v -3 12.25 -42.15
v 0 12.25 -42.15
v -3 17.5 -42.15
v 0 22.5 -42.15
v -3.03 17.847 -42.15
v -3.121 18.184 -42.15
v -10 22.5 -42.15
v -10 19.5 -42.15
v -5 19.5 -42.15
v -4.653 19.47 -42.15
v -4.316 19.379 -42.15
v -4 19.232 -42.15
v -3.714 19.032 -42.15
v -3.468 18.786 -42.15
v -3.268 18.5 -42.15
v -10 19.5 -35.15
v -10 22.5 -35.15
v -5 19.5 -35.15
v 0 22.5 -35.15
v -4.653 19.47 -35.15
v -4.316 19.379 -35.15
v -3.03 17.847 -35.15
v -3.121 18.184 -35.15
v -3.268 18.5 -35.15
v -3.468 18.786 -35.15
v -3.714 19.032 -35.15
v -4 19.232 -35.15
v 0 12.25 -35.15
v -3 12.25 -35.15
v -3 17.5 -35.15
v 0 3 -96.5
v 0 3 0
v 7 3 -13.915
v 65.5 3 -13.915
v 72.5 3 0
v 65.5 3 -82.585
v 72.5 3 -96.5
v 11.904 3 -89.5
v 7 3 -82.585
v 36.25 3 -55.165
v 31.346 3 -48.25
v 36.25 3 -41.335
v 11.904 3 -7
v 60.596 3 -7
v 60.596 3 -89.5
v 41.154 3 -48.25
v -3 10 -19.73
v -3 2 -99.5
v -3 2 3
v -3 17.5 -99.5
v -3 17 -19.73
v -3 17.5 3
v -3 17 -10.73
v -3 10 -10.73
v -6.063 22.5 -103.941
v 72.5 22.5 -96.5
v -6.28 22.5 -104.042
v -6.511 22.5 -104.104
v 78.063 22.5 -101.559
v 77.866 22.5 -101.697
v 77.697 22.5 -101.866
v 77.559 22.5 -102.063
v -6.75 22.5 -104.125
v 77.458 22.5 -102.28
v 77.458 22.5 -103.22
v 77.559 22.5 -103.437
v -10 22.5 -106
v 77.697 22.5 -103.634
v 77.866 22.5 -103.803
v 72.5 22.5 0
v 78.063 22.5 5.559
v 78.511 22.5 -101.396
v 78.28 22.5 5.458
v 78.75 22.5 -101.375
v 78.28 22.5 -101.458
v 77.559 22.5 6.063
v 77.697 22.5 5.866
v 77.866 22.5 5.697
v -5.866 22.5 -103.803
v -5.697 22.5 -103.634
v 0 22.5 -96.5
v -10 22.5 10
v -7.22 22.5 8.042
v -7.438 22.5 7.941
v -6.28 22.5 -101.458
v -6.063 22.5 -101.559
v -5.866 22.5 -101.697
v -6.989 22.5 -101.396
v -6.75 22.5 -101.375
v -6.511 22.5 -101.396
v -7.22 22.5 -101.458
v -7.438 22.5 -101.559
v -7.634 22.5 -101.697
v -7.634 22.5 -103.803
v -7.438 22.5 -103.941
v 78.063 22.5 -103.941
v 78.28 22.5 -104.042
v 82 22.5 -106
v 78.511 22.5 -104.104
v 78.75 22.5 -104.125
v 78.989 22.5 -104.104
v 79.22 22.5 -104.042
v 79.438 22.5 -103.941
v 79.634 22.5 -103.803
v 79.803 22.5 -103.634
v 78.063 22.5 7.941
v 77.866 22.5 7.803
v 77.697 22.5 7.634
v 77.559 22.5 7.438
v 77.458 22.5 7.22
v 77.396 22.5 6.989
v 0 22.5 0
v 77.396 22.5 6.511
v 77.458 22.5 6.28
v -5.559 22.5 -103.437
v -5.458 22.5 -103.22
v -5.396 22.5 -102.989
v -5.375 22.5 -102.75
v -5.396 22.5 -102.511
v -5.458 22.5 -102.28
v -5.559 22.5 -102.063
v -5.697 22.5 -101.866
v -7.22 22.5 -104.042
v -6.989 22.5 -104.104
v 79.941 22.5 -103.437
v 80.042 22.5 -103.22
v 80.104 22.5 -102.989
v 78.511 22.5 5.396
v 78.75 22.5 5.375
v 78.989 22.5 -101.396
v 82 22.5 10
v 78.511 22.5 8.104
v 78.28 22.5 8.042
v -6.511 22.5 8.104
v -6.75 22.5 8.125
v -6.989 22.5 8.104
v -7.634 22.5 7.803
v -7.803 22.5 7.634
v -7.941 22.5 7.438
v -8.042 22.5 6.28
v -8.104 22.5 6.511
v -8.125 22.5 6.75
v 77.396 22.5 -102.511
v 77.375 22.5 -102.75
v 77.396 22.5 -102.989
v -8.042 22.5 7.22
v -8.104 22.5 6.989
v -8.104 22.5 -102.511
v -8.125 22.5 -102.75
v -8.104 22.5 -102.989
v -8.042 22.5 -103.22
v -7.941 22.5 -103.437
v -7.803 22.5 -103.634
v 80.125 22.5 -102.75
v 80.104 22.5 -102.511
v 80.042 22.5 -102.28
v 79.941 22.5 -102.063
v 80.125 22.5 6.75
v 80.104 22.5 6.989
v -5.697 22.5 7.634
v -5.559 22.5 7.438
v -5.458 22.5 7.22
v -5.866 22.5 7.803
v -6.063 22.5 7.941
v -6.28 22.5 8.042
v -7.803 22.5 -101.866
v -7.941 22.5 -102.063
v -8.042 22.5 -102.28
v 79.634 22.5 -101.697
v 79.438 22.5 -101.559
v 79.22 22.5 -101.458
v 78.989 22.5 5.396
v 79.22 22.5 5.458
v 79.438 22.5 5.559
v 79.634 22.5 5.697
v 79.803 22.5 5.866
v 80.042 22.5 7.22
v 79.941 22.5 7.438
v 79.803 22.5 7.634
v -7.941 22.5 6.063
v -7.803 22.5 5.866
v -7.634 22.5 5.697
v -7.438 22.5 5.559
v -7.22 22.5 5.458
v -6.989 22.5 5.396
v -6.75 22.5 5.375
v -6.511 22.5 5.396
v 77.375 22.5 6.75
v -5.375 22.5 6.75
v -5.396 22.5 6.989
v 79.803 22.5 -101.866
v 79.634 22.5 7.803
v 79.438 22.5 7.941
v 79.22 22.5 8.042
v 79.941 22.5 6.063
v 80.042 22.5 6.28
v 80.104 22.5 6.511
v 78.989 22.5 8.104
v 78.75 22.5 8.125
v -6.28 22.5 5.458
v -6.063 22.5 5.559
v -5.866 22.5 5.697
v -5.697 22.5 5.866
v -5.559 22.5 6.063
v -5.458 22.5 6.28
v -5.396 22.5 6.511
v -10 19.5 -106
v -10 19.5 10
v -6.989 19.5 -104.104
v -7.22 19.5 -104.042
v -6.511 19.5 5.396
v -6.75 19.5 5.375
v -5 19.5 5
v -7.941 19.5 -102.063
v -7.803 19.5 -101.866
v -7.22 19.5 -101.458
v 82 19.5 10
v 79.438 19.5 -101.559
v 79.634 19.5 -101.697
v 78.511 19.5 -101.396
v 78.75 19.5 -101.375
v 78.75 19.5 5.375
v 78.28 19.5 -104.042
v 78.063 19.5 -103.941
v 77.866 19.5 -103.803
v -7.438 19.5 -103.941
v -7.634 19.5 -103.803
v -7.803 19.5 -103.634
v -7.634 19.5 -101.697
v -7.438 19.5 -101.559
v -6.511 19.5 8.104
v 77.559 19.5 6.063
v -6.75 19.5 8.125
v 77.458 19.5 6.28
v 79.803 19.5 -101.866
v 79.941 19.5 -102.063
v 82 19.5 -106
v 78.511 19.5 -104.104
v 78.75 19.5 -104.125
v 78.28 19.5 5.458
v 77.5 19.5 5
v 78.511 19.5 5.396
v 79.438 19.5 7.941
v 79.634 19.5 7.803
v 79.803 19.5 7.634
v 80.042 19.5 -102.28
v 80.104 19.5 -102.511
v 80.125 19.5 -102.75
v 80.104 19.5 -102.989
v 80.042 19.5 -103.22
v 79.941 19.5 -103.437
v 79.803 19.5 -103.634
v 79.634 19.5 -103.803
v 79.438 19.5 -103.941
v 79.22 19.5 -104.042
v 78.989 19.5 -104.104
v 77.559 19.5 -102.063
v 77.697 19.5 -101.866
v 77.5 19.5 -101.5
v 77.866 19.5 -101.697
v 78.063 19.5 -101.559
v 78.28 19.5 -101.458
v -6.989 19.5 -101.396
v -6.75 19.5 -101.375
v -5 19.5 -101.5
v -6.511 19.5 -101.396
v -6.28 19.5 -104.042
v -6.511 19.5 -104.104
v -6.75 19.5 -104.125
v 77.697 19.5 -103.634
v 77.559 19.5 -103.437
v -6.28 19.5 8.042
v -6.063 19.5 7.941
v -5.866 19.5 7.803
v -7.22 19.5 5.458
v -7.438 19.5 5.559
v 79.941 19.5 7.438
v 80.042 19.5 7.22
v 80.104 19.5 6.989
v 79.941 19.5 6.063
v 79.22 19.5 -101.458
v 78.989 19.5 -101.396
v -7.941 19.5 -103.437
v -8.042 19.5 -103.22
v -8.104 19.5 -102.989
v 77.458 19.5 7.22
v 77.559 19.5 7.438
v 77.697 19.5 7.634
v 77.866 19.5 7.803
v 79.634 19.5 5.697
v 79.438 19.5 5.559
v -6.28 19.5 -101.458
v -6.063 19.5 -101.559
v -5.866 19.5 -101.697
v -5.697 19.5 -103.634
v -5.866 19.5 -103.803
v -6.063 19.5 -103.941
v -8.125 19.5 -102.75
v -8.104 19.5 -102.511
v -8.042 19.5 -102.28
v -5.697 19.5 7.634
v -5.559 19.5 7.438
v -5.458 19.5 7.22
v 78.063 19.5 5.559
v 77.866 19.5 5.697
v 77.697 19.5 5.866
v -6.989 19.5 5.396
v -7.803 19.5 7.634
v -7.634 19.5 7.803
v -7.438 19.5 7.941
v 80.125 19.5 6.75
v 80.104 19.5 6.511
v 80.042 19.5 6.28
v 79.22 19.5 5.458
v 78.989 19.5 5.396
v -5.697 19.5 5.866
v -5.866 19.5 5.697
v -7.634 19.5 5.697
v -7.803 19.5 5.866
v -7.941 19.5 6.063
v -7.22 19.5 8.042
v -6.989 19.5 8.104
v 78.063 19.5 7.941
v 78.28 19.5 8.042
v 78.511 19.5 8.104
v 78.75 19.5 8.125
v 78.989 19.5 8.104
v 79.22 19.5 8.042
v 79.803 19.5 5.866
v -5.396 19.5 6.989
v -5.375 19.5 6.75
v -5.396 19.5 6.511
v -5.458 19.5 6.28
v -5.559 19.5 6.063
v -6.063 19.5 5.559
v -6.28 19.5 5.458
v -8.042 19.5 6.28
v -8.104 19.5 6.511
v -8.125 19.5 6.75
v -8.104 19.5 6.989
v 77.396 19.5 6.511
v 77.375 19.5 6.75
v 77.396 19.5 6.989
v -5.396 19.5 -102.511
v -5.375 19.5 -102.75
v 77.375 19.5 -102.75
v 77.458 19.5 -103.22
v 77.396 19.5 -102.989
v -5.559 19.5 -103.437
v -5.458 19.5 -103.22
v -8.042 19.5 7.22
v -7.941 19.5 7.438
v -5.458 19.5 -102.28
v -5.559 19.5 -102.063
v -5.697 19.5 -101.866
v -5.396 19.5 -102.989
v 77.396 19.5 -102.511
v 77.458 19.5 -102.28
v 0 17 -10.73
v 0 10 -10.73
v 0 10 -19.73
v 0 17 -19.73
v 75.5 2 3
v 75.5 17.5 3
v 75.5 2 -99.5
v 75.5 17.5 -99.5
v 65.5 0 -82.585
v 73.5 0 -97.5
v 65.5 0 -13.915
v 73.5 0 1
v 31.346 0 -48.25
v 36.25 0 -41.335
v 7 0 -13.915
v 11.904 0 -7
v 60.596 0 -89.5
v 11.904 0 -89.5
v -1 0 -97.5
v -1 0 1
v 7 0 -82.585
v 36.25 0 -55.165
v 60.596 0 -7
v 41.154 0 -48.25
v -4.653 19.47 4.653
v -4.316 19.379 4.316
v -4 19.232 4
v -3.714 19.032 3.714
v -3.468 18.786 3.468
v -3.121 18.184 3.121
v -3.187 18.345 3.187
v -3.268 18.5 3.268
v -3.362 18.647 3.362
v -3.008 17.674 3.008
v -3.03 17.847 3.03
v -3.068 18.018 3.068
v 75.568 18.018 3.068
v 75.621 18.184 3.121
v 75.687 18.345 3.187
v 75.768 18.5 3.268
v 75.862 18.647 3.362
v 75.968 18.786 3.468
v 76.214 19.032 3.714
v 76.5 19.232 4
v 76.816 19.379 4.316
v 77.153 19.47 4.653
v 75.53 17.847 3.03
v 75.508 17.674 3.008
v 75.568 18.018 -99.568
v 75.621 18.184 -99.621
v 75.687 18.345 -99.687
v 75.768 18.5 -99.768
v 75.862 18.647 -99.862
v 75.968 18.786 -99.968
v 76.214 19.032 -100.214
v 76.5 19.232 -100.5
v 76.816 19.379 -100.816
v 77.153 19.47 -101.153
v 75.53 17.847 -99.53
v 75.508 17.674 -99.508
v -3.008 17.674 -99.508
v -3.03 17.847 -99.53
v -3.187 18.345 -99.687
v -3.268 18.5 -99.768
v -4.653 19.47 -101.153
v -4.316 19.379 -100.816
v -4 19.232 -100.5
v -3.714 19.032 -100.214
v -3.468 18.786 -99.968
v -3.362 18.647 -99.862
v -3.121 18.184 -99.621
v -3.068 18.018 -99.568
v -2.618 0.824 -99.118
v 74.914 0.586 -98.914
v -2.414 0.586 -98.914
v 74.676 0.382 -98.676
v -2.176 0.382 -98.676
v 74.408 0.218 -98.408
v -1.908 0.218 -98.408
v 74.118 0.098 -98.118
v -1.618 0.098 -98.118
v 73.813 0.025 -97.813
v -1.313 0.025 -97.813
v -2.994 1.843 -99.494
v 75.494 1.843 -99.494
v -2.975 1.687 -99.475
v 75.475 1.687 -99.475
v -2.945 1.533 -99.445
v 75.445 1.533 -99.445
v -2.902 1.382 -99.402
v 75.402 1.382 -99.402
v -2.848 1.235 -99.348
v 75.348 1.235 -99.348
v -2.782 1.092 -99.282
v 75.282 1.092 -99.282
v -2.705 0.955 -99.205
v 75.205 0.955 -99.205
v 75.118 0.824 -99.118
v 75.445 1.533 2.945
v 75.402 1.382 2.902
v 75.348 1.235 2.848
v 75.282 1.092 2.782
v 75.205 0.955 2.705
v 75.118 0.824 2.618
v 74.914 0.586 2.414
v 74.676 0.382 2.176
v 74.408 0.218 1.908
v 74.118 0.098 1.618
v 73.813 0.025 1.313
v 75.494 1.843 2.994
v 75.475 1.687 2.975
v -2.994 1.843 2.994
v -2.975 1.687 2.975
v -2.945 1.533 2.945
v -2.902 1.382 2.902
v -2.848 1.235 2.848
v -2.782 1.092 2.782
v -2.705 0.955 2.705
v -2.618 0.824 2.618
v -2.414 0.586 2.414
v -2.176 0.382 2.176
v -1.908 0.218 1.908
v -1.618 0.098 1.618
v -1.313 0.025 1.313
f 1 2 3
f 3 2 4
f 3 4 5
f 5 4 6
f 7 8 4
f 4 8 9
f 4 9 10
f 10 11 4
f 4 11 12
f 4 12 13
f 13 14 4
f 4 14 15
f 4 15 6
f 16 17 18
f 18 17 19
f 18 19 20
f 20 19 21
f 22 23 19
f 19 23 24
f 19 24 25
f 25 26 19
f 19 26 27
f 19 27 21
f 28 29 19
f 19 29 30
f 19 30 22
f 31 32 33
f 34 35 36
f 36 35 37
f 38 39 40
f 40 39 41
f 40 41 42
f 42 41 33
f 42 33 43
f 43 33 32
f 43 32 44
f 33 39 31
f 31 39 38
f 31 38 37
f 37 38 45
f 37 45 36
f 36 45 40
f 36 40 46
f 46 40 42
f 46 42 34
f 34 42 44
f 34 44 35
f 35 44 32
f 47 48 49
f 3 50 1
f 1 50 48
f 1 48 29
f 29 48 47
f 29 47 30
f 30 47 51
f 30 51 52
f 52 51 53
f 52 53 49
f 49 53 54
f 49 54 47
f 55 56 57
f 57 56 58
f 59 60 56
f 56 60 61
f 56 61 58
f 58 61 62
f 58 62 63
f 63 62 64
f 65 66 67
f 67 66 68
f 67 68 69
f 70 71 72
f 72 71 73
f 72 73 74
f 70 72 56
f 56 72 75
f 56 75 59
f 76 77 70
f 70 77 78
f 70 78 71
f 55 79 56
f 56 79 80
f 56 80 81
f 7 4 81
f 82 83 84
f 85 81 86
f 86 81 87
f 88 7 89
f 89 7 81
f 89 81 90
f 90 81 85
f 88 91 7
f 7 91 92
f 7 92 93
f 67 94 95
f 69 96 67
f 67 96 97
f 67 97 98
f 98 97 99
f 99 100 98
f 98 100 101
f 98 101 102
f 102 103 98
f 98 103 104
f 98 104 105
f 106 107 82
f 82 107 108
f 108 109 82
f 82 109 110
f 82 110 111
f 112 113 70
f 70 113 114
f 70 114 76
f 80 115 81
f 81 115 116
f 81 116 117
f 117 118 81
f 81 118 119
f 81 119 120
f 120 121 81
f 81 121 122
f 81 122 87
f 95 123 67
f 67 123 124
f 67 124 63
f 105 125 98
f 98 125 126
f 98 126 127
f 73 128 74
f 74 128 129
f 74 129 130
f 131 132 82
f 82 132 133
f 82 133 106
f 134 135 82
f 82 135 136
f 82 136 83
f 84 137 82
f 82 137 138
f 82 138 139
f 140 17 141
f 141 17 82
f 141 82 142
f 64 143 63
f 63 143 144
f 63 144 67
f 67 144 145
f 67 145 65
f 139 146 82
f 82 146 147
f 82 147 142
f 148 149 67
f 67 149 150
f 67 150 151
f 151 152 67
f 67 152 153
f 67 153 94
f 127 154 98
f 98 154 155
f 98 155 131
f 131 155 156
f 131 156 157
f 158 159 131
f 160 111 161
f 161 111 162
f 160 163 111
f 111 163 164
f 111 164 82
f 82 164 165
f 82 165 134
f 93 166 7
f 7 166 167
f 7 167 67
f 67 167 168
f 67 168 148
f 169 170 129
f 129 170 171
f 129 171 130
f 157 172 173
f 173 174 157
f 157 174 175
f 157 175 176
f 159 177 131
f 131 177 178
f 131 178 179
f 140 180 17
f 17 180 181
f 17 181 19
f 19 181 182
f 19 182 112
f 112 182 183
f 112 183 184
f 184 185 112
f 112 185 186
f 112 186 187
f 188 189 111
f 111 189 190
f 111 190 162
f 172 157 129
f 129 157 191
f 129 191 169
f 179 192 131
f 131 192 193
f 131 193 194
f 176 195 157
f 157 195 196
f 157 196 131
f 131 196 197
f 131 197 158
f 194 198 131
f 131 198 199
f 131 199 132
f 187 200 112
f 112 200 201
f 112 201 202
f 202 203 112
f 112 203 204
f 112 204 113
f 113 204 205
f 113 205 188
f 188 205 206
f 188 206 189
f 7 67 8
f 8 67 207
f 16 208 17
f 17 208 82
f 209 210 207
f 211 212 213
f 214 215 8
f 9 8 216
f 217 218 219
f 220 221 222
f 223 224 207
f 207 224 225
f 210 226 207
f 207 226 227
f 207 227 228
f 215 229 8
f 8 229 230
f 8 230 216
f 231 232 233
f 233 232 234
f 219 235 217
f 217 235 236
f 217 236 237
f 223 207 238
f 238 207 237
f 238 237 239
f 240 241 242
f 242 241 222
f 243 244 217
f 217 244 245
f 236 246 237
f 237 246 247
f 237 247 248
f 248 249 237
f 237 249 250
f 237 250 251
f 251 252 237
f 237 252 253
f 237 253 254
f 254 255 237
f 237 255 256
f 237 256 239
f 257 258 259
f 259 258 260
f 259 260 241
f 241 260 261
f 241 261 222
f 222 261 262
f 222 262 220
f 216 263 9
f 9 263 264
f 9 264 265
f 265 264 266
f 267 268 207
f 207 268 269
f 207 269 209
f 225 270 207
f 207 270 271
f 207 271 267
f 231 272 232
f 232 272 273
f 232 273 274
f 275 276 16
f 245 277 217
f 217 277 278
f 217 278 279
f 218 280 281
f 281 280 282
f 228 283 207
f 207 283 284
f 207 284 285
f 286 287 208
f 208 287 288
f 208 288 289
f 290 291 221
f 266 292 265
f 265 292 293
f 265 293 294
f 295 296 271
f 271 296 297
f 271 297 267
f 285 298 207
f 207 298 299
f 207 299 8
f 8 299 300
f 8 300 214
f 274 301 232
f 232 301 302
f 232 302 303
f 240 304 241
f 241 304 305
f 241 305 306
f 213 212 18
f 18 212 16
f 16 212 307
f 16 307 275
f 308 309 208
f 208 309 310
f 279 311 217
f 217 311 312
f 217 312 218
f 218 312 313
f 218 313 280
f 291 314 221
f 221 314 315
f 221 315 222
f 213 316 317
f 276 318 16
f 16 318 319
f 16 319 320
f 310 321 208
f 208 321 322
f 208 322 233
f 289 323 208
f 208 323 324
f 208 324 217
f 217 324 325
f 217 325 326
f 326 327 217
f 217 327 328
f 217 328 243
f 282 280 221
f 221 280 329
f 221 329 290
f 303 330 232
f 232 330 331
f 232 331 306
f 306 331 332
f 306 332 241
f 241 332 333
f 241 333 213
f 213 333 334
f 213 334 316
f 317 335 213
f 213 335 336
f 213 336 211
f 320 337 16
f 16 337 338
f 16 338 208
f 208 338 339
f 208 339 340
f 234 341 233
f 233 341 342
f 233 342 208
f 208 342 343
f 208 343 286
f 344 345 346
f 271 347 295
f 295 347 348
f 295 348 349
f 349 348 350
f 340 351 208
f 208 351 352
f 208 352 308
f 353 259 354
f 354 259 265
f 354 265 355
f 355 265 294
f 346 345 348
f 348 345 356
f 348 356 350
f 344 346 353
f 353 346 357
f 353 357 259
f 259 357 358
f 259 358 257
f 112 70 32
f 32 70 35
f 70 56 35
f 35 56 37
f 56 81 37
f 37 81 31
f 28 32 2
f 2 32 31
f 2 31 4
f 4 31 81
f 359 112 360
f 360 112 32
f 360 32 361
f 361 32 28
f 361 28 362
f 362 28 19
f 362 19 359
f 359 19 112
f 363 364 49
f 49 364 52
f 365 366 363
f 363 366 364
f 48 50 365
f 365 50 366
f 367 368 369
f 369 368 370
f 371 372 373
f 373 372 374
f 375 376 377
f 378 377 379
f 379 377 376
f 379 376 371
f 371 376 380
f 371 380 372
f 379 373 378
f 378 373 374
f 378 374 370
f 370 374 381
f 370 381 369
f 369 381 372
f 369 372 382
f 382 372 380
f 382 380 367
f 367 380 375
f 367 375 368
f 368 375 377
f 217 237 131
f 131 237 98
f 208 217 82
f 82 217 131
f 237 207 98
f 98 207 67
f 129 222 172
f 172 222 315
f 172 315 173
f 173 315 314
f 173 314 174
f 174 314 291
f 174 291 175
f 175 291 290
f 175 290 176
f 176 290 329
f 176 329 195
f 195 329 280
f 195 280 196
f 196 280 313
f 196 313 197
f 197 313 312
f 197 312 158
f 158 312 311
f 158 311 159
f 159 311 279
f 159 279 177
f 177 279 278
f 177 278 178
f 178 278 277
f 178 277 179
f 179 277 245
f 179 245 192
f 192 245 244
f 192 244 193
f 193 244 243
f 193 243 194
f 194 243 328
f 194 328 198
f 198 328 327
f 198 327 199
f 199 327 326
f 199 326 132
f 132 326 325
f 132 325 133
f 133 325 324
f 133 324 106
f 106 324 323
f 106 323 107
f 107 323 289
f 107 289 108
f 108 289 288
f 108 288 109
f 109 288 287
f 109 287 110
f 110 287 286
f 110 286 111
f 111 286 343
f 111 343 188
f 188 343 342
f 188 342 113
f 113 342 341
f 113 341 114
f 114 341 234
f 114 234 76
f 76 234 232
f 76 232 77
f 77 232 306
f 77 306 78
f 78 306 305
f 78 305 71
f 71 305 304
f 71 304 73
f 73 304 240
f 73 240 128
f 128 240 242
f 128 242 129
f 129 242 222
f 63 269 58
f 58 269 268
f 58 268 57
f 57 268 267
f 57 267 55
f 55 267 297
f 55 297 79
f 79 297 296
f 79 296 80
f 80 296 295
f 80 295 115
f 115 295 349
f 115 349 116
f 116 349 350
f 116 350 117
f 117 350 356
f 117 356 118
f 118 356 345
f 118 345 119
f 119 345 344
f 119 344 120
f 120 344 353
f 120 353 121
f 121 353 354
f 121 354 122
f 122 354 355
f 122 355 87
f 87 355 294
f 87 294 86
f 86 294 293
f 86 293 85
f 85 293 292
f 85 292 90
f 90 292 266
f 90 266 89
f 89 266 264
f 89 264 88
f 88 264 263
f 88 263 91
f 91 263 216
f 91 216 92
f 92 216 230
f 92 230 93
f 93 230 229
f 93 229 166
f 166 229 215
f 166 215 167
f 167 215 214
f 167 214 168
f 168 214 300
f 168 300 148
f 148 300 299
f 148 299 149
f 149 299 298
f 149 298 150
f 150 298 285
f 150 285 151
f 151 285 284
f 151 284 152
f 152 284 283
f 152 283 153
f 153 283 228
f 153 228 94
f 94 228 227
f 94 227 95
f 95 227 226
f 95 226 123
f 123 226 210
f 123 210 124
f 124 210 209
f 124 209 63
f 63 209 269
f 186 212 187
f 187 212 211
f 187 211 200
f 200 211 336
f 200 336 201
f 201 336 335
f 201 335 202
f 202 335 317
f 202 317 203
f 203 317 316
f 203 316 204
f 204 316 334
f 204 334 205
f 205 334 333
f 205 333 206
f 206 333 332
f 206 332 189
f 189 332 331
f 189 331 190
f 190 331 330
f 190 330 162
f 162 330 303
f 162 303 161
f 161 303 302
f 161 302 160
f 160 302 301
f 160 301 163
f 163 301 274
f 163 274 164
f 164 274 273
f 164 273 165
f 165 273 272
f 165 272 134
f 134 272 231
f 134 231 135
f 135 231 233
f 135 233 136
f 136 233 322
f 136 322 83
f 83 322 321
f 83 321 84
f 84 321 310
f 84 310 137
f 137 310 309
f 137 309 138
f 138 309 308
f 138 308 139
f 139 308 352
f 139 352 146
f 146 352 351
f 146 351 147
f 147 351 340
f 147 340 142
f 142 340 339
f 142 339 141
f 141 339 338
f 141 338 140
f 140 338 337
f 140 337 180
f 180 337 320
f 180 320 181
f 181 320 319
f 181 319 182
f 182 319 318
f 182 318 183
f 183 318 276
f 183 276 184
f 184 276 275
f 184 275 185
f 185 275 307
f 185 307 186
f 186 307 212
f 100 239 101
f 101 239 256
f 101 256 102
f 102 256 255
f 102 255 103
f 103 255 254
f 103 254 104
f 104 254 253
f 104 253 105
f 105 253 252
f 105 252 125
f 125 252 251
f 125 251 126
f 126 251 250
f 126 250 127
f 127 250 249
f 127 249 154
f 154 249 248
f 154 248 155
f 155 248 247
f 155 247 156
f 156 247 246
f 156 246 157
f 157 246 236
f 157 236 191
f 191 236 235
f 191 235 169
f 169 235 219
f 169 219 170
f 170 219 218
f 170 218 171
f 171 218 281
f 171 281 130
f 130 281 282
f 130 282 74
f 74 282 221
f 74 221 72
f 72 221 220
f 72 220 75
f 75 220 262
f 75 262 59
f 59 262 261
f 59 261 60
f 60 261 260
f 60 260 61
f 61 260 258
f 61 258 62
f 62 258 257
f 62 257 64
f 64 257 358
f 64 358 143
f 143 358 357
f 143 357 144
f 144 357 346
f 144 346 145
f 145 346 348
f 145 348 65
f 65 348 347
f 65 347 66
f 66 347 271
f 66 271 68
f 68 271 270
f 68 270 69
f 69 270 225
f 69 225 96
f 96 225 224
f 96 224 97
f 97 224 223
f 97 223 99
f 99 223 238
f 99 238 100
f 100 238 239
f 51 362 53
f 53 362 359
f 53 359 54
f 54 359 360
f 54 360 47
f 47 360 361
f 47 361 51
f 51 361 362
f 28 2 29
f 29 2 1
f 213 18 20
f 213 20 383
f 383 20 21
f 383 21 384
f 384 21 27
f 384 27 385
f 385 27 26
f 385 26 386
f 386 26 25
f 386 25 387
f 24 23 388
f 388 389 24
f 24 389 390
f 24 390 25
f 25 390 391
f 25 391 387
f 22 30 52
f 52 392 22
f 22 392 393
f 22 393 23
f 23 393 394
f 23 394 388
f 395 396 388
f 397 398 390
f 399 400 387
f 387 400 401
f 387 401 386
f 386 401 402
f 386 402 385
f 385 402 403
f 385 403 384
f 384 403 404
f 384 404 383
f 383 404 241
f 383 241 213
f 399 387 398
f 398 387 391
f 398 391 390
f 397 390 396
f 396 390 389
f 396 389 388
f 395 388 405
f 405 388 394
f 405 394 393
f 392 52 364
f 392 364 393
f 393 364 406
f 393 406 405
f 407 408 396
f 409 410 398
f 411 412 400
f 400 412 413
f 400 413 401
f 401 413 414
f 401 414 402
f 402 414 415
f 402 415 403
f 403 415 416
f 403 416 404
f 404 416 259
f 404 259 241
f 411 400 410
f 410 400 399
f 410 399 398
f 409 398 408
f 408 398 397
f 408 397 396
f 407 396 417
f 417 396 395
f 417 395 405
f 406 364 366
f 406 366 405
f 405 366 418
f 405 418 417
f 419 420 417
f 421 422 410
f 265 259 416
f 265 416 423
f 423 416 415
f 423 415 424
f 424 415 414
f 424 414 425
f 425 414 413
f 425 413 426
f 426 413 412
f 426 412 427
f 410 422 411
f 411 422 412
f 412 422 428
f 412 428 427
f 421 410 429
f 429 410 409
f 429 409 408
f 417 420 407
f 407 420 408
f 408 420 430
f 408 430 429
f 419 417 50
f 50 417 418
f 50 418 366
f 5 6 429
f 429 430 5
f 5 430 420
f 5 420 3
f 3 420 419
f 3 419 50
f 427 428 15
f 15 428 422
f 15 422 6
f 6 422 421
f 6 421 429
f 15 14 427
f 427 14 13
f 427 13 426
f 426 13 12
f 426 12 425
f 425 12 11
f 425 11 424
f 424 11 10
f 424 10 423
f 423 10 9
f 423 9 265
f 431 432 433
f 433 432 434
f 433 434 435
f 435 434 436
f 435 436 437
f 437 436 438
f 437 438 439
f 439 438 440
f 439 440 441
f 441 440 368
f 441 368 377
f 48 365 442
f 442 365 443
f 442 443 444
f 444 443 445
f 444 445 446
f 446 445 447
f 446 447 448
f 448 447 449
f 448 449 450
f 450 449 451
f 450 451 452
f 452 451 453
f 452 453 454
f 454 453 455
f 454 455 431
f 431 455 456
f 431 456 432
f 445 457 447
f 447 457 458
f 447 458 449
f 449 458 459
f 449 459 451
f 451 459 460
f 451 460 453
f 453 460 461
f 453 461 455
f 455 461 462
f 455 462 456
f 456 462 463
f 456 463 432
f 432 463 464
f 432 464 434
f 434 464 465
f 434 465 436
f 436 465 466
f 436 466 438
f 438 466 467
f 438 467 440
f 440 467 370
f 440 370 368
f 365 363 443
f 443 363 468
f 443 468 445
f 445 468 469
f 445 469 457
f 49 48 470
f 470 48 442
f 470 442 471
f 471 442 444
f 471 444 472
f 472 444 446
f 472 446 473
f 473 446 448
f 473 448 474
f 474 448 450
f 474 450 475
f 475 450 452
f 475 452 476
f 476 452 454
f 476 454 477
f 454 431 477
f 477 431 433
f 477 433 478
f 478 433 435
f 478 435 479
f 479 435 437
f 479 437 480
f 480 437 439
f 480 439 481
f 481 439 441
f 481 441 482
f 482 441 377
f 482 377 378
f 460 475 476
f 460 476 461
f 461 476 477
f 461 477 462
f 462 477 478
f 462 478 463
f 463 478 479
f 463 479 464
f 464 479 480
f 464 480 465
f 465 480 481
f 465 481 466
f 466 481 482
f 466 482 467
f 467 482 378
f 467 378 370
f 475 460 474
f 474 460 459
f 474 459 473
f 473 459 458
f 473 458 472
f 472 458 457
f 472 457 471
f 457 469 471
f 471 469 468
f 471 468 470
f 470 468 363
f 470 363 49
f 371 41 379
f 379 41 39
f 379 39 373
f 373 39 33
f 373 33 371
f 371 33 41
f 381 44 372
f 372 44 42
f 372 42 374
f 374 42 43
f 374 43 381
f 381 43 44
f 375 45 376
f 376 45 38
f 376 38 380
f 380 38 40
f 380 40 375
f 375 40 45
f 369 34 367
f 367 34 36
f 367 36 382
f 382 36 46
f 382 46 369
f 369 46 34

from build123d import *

# Parameters (mm, degrees)
SKETCH1_W              = 72.5
SKETCH1_H              = 96.5
BRACKETBASE_DEPTH      = 3
SKETCH3_W              = 78.5
SKETCH3_H              = 102.5
SKETCH3_W_2            = 72.5
SKETCH3_H_2            = 96.5
BRACKETWALLS_DEPTH     = 22.5
SKETCH4_W              = 7
SKETCH4_H              = 19.5
WIREHOLE_DEPTH         = 22.5
BRACKETFLANGE_DEPTH    = 3
SKETCH7_R              = 1.375
MOUNTINGHOLES_DEPTH    = 4
SKETCH8_W              = 9
SKETCH8_H              = 7
SWITCHHOLE_DEPTH       = 10
BOSS_EXTRUDE1_REACH    = 72.85
SKETCH10_W             = 2.5
SKETCH10_H             = 7
BOSS_EXTRUDE2_DEPTH    = 12.25
FILLET1_R              = 2
FILLET2_R              = 2
SKETCH11_W             = 7
SKETCH11_H             = 10.25
CUT_EXTRUDE1_DEPTH     = 10
WEIGHTREDUCTION1_DEPTH = 23.5


with BuildPart() as part:
    # Sketch1 → bracketBase (new body)
    with BuildSketch(Plane(origin=(0, 0, 0), x_dir=(1, 0, 0), z_dir=(0, 1, 0))):
        with Locations((36.25, 48.25)):
            Rectangle(SKETCH1_W, SKETCH1_H)
    extrude(amount=BRACKETBASE_DEPTH)

    # Sketch3 → bracketWalls (add)
    with BuildSketch(Plane.XZ):
        with Locations((36.25, -48.25)):
            Rectangle(SKETCH3_W, SKETCH3_H)
        with Locations((36.25, -48.25)):
            Rectangle(SKETCH3_W_2, SKETCH3_H_2, mode=Mode.SUBTRACT)
    extrude(amount=-BRACKETWALLS_DEPTH)

    # Sketch4 → wireHole (cut)
    with BuildSketch(Plane.ZY.offset(-72.5)):
        with Locations((-38.65, 12.75)):
            Rectangle(SKETCH4_W, SKETCH4_H)
    wirehole = extrude(amount=-WIREHOLE_DEPTH, mode=Mode.SUBTRACT)

    # Sketch6 → bracketFlange (add)
    with BuildSketch(Plane(origin=(0, 22.5, 0), x_dir=(1, 0, 0), z_dir=(0, 1, 0))):
        Polygon((72.5, 96.5), (72.5, 42.15), (82, 42.15), (82, 106), (-10, 106), (-10, -10), (82, -10), (82, 35.15), (72.5, 35.15), (72.5, 0), (0, 0), (0, 96.5), align=None)
    extrude(amount=-BRACKETFLANGE_DEPTH)

    # Sketch7 → mountingHoles (cut, through all)
    with BuildSketch(Plane.XZ.offset(-19.5)):
        with Locations((78.75, -102.75)):
            Circle(SKETCH7_R)
        with Locations((78.75, 6.75)):
            Circle(SKETCH7_R)
        with Locations((-6.75, -102.75)):
            Circle(SKETCH7_R)
        with Locations((-6.75, 6.75)):
            Circle(SKETCH7_R)
    extrude(amount=-MOUNTINGHOLES_DEPTH, mode=Mode.SUBTRACT)

    # Mirror1: wireHole across plane
    add(wirehole.mirror(Plane(origin=(36, 0, 0), x_dir=(0, 0, 1), z_dir=(1, 0, 0))), mode=Mode.SUBTRACT)

    # Sketch8 → switchHole (cut)
    with BuildSketch(Plane.ZY.offset(3)):
        with Locations((-15.23, 13.5)):
            Rectangle(SKETCH8_W, SKETCH8_H)
    extrude(amount=-SWITCHHOLE_DEPTH, mode=Mode.SUBTRACT)

    # Sketch9 → Boss-Extrude1 (add, up to next)
    with BuildSketch(Plane(origin=(0, 0, -35.15), x_dir=(-1, 0, 0), z_dir=(0, 0, -1)), mode=Mode.PRIVATE) as boss_extrude1_sk1:
        Polygon((-72.5, 3), (-72.5, 22.5), (-82, 22.5), (-82, 19.5), (-75.5, 19.5), (-75.5, 3), align=None)
    boss_extrude1_tool1 = extrude(boss_extrude1_sk1.sketch, amount=BOSS_EXTRUDE1_REACH, mode=Mode.PRIVATE) - part.part
    add(boss_extrude1_tool1.solids().sort_by_distance((75.1875, 14.8125, -35.15))[0])

    # Sketch10 → Boss-Extrude2 (add)
    with BuildSketch(Plane.XZ):
        with Locations((-1.75, -38.65)):
            Rectangle(SKETCH10_W, SKETCH10_H)
    extrude(amount=-BOSS_EXTRUDE2_DEPTH)

    # Fillet1
    fillet1_edges = [part.edges().sort_by_distance(p)[0] for p in [
        (-3, 19.5, -16.075),
        (36.25, 19.5, 3),
        (75.5, 19.5, -48.25),
        (36.25, 19.5, -99.5),
        (-3, 19.5, -70.825),
    ]]
    fillet(fillet1_edges, radius=FILLET1_R)

    # Fillet2
    fillet2_edges = [part.edges().sort_by_distance(p)[0] for p in [
        (36.25, 0, 3),
        (-3, 0, -48.25),
        (36.25, 0, -99.5),
        (75.5, 0, -48.25),
    ]]
    fillet(fillet2_edges, radius=FILLET2_R)

    # Sketch11 → Cut-Extrude1 (cut)
    with BuildSketch(Plane.ZY.offset(0.5)):
        with Locations((-38.65, 17.375)):
            Rectangle(SKETCH11_W, SKETCH11_H)
    extrude(amount=-CUT_EXTRUDE1_DEPTH, mode=Mode.SUBTRACT)

    # Sketch12 → weightReduction1 (cut, through all)
    with BuildSketch(Plane.XZ):
        Polygon((11.903565914, -89.5), (36.25, -55.165285264), (60.596434086, -89.5), align=None)
        Polygon((65.5, -82.584714736), (41.153565914, -48.25), (65.5, -13.915285264), align=None)
        Polygon((60.596434086, -7), (11.903565914, -7), (36.25, -41.334714736), align=None)
        Polygon((7, -13.915285264), (7, -82.584714736), (31.346434086, -48.25), align=None)
    extrude(amount=-WEIGHTREDUCTION1_DEPTH, mode=Mode.SUBTRACT)


solid = part.part
